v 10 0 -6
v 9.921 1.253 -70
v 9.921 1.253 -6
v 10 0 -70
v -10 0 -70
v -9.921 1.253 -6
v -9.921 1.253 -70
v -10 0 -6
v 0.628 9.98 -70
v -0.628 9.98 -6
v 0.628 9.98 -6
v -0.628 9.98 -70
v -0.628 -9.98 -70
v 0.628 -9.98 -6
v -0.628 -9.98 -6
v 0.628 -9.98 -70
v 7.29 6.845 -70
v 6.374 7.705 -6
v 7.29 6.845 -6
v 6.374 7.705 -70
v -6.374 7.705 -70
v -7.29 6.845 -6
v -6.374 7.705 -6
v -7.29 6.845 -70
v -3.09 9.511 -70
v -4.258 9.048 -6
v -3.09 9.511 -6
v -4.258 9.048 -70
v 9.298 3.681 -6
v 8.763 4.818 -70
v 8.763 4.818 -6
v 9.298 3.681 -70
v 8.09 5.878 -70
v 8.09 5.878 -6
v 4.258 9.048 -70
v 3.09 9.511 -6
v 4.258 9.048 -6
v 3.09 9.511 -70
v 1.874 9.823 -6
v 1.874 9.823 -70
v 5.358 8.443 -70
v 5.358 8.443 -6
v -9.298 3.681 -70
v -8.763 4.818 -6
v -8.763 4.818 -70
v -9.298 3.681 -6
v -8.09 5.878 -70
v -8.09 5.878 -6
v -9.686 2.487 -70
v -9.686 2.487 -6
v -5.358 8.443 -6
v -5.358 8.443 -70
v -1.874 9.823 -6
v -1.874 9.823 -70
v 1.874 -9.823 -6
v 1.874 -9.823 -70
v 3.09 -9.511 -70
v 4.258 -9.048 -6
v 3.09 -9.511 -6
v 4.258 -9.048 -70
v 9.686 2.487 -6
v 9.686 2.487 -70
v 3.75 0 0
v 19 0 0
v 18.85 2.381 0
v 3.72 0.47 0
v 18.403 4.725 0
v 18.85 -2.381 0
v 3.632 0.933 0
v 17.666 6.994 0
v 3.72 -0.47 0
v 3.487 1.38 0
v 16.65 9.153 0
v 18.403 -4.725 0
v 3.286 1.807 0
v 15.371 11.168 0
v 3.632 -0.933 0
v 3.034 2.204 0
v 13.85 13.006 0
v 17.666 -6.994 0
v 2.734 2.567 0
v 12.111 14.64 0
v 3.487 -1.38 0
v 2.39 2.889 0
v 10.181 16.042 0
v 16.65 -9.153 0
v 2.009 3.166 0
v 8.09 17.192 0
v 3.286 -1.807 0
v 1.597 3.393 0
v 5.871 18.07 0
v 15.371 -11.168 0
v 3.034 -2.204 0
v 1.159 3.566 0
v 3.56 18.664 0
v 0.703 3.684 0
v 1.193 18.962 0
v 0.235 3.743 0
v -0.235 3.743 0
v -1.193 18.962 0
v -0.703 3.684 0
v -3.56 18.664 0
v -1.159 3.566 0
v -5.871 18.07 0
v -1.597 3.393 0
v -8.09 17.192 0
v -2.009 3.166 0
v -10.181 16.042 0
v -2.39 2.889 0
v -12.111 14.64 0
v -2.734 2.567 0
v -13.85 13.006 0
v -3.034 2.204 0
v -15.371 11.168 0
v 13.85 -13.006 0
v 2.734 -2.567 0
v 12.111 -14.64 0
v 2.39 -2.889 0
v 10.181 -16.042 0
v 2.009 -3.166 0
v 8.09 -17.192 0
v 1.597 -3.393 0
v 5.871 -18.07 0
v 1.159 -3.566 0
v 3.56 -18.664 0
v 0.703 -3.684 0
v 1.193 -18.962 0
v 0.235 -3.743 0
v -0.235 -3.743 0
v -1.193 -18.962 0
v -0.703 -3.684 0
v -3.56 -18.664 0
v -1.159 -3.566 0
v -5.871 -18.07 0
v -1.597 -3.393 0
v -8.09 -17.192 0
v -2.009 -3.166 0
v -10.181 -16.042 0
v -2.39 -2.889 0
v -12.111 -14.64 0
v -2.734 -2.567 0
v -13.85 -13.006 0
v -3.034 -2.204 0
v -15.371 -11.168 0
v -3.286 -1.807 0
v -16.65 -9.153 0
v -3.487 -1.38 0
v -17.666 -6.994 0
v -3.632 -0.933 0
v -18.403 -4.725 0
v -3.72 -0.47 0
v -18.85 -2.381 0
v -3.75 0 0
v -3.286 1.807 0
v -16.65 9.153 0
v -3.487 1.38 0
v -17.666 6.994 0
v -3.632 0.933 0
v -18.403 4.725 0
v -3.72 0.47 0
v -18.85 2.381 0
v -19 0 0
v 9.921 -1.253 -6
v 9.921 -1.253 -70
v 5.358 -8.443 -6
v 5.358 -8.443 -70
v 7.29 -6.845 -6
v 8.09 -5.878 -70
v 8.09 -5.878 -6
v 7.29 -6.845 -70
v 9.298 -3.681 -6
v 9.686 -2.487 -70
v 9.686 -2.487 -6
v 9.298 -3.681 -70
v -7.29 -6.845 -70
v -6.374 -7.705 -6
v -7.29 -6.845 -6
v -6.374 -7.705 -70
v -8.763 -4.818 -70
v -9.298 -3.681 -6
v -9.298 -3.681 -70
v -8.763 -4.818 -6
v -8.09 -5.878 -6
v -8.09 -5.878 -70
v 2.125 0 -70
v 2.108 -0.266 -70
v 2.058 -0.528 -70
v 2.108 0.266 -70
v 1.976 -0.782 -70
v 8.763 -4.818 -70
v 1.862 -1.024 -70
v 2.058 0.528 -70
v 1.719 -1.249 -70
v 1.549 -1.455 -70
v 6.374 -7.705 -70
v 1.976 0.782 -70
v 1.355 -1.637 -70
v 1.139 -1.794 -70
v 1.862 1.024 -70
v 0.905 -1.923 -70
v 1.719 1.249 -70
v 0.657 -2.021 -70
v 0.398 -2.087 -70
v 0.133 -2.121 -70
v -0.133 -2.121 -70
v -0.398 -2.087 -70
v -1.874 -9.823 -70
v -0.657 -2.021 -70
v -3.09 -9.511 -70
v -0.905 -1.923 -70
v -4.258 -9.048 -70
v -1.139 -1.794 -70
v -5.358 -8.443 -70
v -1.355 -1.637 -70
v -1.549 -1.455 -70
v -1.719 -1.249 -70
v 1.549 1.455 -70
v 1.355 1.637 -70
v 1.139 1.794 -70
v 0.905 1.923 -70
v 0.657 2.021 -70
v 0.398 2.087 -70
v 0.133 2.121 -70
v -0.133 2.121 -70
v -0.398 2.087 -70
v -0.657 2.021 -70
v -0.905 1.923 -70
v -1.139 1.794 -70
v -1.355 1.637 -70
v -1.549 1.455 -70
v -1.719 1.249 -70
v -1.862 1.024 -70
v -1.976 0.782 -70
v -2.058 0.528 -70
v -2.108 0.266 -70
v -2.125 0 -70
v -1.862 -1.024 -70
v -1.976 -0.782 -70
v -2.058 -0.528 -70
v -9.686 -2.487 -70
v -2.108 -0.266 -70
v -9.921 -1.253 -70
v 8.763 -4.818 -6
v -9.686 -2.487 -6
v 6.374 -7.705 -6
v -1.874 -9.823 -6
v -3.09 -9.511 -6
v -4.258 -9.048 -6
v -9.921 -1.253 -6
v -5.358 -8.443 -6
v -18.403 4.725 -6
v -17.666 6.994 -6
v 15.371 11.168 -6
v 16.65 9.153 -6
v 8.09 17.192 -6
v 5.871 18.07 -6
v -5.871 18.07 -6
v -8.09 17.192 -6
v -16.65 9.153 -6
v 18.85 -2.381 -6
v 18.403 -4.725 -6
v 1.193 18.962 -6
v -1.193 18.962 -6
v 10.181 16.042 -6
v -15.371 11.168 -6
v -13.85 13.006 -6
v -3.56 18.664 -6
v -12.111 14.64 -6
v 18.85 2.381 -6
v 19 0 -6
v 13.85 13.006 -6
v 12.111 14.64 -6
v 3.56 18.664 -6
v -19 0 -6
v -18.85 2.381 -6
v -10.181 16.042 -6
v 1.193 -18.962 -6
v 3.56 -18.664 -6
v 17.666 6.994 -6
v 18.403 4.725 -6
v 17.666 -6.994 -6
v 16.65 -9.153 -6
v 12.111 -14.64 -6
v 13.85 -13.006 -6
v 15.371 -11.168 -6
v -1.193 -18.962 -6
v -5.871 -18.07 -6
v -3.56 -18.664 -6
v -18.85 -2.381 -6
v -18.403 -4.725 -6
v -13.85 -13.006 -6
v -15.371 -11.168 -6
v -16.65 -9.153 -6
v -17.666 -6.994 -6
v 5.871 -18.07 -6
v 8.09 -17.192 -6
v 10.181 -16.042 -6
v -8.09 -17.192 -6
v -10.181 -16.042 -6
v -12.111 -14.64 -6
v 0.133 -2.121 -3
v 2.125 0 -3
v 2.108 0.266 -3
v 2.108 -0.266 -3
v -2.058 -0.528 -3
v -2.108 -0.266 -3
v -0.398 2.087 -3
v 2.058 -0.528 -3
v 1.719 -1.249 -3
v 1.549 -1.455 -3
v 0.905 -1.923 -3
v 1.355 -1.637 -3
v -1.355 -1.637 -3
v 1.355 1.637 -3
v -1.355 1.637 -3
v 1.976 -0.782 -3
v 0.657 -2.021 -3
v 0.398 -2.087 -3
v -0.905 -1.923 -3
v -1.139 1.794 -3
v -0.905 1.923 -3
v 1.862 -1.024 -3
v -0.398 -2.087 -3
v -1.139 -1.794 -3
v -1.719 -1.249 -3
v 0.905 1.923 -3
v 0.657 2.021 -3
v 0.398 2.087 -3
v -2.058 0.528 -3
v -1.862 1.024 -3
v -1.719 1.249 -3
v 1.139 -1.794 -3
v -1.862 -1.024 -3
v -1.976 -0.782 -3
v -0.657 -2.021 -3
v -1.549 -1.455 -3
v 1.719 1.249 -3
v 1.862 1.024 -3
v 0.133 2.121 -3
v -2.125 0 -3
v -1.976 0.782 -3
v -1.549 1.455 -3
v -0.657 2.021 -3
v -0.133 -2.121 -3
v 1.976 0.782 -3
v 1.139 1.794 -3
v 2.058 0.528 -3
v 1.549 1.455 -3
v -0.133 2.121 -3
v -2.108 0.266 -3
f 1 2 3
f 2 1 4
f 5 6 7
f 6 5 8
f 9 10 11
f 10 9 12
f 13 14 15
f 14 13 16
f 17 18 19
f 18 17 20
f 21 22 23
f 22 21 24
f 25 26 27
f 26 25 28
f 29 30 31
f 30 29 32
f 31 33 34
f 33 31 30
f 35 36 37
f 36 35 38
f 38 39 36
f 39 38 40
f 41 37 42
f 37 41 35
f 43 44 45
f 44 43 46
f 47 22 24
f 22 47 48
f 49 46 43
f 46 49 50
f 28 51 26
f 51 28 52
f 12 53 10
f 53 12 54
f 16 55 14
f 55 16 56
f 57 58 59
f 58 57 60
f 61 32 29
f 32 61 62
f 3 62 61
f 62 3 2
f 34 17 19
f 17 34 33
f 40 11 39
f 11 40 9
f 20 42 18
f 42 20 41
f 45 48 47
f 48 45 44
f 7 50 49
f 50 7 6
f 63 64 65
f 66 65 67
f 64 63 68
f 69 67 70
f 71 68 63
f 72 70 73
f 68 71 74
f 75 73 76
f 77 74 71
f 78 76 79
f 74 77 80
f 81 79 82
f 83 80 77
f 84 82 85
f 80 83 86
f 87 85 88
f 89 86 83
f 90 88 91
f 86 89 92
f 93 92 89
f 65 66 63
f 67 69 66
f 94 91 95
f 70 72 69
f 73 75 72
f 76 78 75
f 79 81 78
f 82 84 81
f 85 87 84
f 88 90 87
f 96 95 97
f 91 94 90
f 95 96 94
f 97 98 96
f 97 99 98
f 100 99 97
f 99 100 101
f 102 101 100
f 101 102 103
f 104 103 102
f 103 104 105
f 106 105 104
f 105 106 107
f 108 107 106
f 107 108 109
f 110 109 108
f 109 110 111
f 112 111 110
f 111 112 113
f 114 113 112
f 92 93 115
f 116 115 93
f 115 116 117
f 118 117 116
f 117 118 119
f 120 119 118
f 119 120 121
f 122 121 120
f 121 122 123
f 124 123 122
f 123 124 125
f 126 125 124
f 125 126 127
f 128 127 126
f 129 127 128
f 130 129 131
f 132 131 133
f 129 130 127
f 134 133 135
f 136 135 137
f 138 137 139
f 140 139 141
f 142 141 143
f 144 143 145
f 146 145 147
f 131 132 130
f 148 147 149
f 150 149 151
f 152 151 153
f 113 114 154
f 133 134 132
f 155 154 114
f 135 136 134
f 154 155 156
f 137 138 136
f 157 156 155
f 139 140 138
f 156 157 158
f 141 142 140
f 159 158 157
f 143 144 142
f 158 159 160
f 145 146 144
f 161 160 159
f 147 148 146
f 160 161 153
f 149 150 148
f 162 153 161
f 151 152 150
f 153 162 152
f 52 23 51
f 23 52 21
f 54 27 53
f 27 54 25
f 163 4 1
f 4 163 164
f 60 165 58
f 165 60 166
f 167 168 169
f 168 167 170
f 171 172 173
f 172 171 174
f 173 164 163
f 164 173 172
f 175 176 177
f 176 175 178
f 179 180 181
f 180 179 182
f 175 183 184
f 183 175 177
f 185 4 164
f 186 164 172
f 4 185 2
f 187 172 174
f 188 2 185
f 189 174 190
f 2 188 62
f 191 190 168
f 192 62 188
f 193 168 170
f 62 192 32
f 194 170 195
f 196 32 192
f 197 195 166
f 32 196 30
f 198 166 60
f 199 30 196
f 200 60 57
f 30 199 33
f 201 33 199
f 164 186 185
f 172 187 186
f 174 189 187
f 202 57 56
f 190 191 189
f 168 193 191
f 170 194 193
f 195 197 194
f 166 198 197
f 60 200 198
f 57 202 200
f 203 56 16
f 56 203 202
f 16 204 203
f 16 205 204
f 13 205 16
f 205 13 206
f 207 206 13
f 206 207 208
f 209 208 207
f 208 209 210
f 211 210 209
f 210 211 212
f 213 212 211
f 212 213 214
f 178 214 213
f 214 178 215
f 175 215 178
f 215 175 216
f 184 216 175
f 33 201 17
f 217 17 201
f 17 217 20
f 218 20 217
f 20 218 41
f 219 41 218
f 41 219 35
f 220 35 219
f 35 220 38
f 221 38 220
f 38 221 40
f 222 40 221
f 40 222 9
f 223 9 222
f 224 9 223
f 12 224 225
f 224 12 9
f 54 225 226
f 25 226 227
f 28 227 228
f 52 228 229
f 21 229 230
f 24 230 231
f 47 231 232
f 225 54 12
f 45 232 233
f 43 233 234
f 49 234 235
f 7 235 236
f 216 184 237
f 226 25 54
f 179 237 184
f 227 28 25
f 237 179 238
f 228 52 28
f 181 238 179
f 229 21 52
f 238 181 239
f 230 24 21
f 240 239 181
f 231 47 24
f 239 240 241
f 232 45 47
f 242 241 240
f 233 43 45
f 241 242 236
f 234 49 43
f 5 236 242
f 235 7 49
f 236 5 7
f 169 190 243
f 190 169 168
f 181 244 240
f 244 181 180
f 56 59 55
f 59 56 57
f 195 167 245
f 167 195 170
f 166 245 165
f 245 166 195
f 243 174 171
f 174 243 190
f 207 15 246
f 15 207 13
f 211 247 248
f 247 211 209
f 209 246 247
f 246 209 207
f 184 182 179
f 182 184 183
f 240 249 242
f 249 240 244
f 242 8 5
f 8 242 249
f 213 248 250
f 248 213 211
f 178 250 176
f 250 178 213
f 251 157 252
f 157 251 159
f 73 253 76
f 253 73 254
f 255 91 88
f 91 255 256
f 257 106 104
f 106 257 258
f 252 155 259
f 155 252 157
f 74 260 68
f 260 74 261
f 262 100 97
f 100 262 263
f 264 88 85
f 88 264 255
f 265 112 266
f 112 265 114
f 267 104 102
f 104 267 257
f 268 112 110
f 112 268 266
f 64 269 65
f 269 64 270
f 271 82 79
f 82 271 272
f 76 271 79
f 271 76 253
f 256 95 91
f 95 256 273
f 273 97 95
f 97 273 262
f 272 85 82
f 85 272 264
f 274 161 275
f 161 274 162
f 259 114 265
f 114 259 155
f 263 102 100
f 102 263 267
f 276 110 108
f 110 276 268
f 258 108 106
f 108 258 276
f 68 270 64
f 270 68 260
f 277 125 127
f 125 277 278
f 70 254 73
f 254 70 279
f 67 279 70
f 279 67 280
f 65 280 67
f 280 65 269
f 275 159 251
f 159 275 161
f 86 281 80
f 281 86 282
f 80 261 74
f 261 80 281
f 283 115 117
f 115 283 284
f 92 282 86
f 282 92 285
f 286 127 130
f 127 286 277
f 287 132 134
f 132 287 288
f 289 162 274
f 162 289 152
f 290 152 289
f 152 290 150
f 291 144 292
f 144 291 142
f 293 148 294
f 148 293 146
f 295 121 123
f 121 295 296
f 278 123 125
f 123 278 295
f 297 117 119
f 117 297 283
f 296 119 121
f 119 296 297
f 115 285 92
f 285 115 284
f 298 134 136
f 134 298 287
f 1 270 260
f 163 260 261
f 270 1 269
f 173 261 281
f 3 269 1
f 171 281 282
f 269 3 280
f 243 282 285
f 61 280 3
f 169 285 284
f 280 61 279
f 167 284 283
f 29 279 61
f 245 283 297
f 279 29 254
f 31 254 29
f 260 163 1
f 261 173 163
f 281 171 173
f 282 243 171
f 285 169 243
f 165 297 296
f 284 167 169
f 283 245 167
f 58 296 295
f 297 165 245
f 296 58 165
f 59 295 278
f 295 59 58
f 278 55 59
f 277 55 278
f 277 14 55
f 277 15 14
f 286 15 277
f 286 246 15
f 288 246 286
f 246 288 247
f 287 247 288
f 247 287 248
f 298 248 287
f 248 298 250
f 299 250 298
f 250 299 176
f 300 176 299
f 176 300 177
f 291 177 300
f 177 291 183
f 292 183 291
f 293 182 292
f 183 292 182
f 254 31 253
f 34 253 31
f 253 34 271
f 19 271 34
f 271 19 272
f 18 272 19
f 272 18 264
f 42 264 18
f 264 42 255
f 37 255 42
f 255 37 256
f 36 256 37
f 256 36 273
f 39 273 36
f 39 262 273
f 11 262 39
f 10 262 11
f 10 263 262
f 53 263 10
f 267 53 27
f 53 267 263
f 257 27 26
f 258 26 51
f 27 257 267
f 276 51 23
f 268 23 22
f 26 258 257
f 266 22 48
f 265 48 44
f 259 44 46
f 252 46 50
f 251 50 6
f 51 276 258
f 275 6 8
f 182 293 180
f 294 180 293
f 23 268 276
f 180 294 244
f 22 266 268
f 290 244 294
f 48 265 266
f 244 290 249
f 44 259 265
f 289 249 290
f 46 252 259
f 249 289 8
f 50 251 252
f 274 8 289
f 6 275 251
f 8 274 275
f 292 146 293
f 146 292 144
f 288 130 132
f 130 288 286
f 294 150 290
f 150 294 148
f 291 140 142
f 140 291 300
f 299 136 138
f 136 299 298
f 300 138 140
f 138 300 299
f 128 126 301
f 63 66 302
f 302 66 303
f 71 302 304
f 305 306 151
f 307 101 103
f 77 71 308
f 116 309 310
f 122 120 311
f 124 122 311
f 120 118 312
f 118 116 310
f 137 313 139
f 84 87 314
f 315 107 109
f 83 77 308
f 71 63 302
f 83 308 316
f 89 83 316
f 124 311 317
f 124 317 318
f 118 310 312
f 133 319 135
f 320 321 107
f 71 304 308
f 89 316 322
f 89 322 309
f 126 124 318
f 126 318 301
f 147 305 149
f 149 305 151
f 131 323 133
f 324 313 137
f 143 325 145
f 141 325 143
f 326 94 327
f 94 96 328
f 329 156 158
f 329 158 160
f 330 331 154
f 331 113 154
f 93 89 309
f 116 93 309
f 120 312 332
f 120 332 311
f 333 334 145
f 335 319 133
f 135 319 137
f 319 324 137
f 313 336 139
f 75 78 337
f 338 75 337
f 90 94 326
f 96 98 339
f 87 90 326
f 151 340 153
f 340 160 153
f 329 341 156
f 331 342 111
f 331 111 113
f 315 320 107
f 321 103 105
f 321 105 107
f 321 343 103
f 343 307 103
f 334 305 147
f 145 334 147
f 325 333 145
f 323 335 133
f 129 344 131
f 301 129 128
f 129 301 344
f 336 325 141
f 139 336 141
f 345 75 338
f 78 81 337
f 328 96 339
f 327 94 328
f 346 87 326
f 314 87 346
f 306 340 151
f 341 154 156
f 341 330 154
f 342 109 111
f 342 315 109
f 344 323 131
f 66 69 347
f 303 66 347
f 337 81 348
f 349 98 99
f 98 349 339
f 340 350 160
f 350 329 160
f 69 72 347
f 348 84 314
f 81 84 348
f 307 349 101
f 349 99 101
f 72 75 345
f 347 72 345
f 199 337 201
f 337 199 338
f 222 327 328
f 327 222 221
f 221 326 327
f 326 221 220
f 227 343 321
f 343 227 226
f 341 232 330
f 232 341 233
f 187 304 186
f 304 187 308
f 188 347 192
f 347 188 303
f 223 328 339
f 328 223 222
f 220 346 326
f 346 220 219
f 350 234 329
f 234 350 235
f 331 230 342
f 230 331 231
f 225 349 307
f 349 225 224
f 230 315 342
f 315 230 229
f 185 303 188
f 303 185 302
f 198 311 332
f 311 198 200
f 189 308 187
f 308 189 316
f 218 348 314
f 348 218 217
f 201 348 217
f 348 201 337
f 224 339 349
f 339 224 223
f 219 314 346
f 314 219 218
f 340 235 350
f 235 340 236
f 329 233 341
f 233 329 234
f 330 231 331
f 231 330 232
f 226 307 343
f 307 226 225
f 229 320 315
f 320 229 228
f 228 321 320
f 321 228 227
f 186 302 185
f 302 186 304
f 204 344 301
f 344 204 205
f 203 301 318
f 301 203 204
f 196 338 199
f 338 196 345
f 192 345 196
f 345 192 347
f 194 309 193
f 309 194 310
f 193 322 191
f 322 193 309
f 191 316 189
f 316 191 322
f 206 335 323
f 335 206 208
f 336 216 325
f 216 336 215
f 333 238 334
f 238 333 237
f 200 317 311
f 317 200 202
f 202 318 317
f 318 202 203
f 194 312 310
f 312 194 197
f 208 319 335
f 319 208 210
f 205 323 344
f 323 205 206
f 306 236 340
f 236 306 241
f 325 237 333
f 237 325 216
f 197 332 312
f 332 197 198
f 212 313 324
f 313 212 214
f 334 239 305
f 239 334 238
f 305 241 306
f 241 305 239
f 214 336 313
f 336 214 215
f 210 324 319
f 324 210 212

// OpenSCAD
$fn = 50;


difference() {
	union() {
		translate(v = [0, 0, -70.0000000000]) {
			cylinder(h = 70, r = 10.0000000000);
		}
		translate(v = [0, 0, -6.0000000000]) {
			cylinder(h = 6, r = 19.0000000000);
		}
	}
	union() {
		translate(v = [0, 0, 0]) {
			rotate(a = [0, 0, 0]) {
				difference() {
					union() {
						#translate(v = [0, 0, -70.0000000000]) {
							cylinder(h = 70, r = 2.0000000000);
						}
						#translate(v = [0, 0, -3]) {
							cylinder(h = 3, r1 = 2.1250000000, r2 = 3.7500000000);
						}
						#translate(v = [0, 0, -70.0000000000]) {
							cylinder(h = 70, r = 2.1250000000);
						}
						#translate(v = [0, 0, -70.0000000000]) {
							cylinder(h = 70, r = 2.0000000000);
						}
					}
					union();
				}
			}
		}
	}
}
